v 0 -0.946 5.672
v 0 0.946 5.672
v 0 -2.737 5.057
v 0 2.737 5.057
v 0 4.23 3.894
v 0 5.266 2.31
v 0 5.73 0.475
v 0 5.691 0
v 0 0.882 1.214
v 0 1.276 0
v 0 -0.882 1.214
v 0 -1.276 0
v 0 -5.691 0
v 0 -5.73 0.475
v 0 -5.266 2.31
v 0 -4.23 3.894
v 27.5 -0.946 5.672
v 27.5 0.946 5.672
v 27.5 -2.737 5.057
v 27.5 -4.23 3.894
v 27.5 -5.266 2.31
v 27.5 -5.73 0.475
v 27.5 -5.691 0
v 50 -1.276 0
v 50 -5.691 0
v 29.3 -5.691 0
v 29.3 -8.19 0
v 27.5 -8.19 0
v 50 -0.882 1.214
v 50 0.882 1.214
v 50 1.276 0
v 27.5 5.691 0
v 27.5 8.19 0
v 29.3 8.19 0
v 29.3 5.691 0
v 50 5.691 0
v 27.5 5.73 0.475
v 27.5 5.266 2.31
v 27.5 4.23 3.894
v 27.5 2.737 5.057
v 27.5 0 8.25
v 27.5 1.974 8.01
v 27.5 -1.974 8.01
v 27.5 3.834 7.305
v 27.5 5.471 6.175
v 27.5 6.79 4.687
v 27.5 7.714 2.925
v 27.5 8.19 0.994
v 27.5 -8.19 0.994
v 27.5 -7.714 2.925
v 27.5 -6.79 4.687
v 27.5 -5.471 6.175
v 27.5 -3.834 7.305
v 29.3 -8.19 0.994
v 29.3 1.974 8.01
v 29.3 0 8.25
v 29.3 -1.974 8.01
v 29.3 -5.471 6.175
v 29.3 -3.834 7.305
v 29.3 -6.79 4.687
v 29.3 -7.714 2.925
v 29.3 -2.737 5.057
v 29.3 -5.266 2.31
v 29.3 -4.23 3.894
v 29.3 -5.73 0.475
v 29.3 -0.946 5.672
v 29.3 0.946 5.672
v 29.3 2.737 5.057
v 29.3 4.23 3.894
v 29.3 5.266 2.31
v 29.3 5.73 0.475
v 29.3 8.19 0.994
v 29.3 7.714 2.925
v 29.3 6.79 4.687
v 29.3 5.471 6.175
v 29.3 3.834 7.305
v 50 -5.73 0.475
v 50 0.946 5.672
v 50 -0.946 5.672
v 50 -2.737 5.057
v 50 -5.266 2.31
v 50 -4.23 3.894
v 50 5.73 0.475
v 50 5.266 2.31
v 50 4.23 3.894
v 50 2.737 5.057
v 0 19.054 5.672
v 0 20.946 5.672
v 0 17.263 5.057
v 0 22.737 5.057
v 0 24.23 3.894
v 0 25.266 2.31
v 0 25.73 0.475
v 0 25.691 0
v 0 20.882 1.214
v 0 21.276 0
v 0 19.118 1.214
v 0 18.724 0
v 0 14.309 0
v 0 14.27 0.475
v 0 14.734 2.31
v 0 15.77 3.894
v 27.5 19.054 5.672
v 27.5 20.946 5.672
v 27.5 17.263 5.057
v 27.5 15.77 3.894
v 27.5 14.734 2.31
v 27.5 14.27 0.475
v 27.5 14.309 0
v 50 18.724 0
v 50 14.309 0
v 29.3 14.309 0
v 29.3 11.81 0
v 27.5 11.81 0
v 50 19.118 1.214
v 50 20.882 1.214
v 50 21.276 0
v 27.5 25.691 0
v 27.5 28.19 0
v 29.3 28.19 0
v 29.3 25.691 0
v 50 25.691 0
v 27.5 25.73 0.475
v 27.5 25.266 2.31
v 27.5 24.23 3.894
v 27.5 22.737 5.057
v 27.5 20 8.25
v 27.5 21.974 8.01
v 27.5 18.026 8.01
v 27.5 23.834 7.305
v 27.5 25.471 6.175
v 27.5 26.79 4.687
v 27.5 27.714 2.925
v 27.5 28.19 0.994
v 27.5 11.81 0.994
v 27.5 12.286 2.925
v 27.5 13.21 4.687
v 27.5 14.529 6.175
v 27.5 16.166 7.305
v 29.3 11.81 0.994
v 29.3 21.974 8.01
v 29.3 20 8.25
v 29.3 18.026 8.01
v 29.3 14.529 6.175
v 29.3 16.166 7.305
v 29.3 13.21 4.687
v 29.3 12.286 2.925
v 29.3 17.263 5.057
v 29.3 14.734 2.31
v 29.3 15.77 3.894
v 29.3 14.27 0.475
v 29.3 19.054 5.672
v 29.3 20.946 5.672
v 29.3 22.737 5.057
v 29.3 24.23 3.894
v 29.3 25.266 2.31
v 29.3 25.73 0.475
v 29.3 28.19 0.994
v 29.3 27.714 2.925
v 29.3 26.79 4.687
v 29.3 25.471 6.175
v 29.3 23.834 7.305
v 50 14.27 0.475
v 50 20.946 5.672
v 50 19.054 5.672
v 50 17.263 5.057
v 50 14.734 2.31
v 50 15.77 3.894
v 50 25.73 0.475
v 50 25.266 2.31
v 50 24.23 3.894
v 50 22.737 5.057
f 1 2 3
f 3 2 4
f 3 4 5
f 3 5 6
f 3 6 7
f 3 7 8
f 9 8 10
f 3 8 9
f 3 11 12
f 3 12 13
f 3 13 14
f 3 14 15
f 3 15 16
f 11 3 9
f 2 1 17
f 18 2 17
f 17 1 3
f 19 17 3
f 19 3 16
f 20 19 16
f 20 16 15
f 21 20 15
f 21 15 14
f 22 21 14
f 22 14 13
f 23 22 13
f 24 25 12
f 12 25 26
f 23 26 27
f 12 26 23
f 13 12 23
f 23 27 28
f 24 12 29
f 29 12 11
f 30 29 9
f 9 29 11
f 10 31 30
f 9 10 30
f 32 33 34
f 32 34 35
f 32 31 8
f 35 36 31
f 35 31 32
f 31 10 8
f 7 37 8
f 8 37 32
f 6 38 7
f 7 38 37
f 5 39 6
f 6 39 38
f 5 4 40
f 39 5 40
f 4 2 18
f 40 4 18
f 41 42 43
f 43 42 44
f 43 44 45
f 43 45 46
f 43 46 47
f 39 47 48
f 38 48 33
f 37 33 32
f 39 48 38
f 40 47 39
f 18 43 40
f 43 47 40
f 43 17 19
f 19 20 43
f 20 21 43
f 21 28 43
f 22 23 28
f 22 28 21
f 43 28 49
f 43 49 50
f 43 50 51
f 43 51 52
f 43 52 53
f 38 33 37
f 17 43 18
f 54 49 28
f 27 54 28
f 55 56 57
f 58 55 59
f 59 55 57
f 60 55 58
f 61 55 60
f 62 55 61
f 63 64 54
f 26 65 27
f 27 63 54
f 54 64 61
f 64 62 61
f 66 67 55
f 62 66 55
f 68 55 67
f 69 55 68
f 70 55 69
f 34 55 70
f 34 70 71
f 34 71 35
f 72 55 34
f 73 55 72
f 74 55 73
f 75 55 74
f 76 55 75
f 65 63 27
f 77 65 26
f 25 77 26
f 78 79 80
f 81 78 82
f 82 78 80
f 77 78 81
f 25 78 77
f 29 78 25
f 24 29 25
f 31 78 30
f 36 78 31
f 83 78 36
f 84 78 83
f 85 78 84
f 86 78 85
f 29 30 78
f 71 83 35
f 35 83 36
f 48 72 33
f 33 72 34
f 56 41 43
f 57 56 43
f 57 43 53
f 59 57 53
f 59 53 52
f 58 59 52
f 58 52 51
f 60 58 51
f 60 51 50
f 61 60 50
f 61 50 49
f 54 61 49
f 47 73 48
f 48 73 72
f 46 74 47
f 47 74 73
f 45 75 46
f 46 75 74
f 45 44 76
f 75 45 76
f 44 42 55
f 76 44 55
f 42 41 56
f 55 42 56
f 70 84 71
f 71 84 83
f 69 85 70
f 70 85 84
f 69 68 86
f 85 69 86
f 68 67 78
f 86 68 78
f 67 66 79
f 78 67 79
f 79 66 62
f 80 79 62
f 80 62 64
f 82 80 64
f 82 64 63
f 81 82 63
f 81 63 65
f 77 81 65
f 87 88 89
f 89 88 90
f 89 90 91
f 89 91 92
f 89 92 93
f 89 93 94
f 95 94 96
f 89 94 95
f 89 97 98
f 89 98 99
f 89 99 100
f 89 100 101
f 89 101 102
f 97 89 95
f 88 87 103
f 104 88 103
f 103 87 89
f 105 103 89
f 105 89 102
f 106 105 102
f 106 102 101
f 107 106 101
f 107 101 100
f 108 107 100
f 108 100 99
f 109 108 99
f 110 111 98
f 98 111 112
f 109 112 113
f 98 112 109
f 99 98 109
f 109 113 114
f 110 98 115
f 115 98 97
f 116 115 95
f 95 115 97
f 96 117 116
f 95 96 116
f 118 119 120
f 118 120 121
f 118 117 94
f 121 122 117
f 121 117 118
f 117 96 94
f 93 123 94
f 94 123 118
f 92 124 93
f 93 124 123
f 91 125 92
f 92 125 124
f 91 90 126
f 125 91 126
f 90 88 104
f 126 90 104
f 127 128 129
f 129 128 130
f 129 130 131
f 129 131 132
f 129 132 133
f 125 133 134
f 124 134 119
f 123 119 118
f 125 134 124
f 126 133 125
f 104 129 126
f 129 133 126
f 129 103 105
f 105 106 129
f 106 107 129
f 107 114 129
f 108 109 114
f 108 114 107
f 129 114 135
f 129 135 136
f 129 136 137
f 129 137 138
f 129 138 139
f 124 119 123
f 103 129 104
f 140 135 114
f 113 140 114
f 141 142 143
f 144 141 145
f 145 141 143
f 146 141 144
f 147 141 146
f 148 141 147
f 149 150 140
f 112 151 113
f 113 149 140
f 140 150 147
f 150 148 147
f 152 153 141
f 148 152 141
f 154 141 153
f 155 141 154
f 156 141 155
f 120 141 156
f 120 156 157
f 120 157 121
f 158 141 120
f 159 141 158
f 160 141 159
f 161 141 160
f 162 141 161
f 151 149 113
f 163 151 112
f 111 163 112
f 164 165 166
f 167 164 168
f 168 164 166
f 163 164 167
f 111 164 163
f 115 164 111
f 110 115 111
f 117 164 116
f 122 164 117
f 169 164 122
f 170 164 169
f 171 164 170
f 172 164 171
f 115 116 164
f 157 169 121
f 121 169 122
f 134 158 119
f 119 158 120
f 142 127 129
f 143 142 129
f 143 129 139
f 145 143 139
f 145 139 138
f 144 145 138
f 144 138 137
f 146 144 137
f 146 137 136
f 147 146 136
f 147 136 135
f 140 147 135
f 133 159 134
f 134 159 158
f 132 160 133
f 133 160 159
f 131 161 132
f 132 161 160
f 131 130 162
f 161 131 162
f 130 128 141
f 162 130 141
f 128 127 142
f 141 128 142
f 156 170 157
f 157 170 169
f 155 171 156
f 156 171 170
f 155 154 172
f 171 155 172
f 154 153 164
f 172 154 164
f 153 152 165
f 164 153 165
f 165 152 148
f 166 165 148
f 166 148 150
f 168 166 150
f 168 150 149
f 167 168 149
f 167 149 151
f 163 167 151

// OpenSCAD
module penholder() {
	rotate([0,90,0])
		difference() {
			union() {
			cylinder(h=50, d=11.5);
			translate([0,0,27.5]) cylinder(h=1.8, d=16.5);
			}
		translate([0,0,-1]) cylinder(h=52, d=3);
		translate([0,-15,-1]) cube([50,30,52]);	
		}
	}

penholder();
translate([0,20,0]) penholder();
